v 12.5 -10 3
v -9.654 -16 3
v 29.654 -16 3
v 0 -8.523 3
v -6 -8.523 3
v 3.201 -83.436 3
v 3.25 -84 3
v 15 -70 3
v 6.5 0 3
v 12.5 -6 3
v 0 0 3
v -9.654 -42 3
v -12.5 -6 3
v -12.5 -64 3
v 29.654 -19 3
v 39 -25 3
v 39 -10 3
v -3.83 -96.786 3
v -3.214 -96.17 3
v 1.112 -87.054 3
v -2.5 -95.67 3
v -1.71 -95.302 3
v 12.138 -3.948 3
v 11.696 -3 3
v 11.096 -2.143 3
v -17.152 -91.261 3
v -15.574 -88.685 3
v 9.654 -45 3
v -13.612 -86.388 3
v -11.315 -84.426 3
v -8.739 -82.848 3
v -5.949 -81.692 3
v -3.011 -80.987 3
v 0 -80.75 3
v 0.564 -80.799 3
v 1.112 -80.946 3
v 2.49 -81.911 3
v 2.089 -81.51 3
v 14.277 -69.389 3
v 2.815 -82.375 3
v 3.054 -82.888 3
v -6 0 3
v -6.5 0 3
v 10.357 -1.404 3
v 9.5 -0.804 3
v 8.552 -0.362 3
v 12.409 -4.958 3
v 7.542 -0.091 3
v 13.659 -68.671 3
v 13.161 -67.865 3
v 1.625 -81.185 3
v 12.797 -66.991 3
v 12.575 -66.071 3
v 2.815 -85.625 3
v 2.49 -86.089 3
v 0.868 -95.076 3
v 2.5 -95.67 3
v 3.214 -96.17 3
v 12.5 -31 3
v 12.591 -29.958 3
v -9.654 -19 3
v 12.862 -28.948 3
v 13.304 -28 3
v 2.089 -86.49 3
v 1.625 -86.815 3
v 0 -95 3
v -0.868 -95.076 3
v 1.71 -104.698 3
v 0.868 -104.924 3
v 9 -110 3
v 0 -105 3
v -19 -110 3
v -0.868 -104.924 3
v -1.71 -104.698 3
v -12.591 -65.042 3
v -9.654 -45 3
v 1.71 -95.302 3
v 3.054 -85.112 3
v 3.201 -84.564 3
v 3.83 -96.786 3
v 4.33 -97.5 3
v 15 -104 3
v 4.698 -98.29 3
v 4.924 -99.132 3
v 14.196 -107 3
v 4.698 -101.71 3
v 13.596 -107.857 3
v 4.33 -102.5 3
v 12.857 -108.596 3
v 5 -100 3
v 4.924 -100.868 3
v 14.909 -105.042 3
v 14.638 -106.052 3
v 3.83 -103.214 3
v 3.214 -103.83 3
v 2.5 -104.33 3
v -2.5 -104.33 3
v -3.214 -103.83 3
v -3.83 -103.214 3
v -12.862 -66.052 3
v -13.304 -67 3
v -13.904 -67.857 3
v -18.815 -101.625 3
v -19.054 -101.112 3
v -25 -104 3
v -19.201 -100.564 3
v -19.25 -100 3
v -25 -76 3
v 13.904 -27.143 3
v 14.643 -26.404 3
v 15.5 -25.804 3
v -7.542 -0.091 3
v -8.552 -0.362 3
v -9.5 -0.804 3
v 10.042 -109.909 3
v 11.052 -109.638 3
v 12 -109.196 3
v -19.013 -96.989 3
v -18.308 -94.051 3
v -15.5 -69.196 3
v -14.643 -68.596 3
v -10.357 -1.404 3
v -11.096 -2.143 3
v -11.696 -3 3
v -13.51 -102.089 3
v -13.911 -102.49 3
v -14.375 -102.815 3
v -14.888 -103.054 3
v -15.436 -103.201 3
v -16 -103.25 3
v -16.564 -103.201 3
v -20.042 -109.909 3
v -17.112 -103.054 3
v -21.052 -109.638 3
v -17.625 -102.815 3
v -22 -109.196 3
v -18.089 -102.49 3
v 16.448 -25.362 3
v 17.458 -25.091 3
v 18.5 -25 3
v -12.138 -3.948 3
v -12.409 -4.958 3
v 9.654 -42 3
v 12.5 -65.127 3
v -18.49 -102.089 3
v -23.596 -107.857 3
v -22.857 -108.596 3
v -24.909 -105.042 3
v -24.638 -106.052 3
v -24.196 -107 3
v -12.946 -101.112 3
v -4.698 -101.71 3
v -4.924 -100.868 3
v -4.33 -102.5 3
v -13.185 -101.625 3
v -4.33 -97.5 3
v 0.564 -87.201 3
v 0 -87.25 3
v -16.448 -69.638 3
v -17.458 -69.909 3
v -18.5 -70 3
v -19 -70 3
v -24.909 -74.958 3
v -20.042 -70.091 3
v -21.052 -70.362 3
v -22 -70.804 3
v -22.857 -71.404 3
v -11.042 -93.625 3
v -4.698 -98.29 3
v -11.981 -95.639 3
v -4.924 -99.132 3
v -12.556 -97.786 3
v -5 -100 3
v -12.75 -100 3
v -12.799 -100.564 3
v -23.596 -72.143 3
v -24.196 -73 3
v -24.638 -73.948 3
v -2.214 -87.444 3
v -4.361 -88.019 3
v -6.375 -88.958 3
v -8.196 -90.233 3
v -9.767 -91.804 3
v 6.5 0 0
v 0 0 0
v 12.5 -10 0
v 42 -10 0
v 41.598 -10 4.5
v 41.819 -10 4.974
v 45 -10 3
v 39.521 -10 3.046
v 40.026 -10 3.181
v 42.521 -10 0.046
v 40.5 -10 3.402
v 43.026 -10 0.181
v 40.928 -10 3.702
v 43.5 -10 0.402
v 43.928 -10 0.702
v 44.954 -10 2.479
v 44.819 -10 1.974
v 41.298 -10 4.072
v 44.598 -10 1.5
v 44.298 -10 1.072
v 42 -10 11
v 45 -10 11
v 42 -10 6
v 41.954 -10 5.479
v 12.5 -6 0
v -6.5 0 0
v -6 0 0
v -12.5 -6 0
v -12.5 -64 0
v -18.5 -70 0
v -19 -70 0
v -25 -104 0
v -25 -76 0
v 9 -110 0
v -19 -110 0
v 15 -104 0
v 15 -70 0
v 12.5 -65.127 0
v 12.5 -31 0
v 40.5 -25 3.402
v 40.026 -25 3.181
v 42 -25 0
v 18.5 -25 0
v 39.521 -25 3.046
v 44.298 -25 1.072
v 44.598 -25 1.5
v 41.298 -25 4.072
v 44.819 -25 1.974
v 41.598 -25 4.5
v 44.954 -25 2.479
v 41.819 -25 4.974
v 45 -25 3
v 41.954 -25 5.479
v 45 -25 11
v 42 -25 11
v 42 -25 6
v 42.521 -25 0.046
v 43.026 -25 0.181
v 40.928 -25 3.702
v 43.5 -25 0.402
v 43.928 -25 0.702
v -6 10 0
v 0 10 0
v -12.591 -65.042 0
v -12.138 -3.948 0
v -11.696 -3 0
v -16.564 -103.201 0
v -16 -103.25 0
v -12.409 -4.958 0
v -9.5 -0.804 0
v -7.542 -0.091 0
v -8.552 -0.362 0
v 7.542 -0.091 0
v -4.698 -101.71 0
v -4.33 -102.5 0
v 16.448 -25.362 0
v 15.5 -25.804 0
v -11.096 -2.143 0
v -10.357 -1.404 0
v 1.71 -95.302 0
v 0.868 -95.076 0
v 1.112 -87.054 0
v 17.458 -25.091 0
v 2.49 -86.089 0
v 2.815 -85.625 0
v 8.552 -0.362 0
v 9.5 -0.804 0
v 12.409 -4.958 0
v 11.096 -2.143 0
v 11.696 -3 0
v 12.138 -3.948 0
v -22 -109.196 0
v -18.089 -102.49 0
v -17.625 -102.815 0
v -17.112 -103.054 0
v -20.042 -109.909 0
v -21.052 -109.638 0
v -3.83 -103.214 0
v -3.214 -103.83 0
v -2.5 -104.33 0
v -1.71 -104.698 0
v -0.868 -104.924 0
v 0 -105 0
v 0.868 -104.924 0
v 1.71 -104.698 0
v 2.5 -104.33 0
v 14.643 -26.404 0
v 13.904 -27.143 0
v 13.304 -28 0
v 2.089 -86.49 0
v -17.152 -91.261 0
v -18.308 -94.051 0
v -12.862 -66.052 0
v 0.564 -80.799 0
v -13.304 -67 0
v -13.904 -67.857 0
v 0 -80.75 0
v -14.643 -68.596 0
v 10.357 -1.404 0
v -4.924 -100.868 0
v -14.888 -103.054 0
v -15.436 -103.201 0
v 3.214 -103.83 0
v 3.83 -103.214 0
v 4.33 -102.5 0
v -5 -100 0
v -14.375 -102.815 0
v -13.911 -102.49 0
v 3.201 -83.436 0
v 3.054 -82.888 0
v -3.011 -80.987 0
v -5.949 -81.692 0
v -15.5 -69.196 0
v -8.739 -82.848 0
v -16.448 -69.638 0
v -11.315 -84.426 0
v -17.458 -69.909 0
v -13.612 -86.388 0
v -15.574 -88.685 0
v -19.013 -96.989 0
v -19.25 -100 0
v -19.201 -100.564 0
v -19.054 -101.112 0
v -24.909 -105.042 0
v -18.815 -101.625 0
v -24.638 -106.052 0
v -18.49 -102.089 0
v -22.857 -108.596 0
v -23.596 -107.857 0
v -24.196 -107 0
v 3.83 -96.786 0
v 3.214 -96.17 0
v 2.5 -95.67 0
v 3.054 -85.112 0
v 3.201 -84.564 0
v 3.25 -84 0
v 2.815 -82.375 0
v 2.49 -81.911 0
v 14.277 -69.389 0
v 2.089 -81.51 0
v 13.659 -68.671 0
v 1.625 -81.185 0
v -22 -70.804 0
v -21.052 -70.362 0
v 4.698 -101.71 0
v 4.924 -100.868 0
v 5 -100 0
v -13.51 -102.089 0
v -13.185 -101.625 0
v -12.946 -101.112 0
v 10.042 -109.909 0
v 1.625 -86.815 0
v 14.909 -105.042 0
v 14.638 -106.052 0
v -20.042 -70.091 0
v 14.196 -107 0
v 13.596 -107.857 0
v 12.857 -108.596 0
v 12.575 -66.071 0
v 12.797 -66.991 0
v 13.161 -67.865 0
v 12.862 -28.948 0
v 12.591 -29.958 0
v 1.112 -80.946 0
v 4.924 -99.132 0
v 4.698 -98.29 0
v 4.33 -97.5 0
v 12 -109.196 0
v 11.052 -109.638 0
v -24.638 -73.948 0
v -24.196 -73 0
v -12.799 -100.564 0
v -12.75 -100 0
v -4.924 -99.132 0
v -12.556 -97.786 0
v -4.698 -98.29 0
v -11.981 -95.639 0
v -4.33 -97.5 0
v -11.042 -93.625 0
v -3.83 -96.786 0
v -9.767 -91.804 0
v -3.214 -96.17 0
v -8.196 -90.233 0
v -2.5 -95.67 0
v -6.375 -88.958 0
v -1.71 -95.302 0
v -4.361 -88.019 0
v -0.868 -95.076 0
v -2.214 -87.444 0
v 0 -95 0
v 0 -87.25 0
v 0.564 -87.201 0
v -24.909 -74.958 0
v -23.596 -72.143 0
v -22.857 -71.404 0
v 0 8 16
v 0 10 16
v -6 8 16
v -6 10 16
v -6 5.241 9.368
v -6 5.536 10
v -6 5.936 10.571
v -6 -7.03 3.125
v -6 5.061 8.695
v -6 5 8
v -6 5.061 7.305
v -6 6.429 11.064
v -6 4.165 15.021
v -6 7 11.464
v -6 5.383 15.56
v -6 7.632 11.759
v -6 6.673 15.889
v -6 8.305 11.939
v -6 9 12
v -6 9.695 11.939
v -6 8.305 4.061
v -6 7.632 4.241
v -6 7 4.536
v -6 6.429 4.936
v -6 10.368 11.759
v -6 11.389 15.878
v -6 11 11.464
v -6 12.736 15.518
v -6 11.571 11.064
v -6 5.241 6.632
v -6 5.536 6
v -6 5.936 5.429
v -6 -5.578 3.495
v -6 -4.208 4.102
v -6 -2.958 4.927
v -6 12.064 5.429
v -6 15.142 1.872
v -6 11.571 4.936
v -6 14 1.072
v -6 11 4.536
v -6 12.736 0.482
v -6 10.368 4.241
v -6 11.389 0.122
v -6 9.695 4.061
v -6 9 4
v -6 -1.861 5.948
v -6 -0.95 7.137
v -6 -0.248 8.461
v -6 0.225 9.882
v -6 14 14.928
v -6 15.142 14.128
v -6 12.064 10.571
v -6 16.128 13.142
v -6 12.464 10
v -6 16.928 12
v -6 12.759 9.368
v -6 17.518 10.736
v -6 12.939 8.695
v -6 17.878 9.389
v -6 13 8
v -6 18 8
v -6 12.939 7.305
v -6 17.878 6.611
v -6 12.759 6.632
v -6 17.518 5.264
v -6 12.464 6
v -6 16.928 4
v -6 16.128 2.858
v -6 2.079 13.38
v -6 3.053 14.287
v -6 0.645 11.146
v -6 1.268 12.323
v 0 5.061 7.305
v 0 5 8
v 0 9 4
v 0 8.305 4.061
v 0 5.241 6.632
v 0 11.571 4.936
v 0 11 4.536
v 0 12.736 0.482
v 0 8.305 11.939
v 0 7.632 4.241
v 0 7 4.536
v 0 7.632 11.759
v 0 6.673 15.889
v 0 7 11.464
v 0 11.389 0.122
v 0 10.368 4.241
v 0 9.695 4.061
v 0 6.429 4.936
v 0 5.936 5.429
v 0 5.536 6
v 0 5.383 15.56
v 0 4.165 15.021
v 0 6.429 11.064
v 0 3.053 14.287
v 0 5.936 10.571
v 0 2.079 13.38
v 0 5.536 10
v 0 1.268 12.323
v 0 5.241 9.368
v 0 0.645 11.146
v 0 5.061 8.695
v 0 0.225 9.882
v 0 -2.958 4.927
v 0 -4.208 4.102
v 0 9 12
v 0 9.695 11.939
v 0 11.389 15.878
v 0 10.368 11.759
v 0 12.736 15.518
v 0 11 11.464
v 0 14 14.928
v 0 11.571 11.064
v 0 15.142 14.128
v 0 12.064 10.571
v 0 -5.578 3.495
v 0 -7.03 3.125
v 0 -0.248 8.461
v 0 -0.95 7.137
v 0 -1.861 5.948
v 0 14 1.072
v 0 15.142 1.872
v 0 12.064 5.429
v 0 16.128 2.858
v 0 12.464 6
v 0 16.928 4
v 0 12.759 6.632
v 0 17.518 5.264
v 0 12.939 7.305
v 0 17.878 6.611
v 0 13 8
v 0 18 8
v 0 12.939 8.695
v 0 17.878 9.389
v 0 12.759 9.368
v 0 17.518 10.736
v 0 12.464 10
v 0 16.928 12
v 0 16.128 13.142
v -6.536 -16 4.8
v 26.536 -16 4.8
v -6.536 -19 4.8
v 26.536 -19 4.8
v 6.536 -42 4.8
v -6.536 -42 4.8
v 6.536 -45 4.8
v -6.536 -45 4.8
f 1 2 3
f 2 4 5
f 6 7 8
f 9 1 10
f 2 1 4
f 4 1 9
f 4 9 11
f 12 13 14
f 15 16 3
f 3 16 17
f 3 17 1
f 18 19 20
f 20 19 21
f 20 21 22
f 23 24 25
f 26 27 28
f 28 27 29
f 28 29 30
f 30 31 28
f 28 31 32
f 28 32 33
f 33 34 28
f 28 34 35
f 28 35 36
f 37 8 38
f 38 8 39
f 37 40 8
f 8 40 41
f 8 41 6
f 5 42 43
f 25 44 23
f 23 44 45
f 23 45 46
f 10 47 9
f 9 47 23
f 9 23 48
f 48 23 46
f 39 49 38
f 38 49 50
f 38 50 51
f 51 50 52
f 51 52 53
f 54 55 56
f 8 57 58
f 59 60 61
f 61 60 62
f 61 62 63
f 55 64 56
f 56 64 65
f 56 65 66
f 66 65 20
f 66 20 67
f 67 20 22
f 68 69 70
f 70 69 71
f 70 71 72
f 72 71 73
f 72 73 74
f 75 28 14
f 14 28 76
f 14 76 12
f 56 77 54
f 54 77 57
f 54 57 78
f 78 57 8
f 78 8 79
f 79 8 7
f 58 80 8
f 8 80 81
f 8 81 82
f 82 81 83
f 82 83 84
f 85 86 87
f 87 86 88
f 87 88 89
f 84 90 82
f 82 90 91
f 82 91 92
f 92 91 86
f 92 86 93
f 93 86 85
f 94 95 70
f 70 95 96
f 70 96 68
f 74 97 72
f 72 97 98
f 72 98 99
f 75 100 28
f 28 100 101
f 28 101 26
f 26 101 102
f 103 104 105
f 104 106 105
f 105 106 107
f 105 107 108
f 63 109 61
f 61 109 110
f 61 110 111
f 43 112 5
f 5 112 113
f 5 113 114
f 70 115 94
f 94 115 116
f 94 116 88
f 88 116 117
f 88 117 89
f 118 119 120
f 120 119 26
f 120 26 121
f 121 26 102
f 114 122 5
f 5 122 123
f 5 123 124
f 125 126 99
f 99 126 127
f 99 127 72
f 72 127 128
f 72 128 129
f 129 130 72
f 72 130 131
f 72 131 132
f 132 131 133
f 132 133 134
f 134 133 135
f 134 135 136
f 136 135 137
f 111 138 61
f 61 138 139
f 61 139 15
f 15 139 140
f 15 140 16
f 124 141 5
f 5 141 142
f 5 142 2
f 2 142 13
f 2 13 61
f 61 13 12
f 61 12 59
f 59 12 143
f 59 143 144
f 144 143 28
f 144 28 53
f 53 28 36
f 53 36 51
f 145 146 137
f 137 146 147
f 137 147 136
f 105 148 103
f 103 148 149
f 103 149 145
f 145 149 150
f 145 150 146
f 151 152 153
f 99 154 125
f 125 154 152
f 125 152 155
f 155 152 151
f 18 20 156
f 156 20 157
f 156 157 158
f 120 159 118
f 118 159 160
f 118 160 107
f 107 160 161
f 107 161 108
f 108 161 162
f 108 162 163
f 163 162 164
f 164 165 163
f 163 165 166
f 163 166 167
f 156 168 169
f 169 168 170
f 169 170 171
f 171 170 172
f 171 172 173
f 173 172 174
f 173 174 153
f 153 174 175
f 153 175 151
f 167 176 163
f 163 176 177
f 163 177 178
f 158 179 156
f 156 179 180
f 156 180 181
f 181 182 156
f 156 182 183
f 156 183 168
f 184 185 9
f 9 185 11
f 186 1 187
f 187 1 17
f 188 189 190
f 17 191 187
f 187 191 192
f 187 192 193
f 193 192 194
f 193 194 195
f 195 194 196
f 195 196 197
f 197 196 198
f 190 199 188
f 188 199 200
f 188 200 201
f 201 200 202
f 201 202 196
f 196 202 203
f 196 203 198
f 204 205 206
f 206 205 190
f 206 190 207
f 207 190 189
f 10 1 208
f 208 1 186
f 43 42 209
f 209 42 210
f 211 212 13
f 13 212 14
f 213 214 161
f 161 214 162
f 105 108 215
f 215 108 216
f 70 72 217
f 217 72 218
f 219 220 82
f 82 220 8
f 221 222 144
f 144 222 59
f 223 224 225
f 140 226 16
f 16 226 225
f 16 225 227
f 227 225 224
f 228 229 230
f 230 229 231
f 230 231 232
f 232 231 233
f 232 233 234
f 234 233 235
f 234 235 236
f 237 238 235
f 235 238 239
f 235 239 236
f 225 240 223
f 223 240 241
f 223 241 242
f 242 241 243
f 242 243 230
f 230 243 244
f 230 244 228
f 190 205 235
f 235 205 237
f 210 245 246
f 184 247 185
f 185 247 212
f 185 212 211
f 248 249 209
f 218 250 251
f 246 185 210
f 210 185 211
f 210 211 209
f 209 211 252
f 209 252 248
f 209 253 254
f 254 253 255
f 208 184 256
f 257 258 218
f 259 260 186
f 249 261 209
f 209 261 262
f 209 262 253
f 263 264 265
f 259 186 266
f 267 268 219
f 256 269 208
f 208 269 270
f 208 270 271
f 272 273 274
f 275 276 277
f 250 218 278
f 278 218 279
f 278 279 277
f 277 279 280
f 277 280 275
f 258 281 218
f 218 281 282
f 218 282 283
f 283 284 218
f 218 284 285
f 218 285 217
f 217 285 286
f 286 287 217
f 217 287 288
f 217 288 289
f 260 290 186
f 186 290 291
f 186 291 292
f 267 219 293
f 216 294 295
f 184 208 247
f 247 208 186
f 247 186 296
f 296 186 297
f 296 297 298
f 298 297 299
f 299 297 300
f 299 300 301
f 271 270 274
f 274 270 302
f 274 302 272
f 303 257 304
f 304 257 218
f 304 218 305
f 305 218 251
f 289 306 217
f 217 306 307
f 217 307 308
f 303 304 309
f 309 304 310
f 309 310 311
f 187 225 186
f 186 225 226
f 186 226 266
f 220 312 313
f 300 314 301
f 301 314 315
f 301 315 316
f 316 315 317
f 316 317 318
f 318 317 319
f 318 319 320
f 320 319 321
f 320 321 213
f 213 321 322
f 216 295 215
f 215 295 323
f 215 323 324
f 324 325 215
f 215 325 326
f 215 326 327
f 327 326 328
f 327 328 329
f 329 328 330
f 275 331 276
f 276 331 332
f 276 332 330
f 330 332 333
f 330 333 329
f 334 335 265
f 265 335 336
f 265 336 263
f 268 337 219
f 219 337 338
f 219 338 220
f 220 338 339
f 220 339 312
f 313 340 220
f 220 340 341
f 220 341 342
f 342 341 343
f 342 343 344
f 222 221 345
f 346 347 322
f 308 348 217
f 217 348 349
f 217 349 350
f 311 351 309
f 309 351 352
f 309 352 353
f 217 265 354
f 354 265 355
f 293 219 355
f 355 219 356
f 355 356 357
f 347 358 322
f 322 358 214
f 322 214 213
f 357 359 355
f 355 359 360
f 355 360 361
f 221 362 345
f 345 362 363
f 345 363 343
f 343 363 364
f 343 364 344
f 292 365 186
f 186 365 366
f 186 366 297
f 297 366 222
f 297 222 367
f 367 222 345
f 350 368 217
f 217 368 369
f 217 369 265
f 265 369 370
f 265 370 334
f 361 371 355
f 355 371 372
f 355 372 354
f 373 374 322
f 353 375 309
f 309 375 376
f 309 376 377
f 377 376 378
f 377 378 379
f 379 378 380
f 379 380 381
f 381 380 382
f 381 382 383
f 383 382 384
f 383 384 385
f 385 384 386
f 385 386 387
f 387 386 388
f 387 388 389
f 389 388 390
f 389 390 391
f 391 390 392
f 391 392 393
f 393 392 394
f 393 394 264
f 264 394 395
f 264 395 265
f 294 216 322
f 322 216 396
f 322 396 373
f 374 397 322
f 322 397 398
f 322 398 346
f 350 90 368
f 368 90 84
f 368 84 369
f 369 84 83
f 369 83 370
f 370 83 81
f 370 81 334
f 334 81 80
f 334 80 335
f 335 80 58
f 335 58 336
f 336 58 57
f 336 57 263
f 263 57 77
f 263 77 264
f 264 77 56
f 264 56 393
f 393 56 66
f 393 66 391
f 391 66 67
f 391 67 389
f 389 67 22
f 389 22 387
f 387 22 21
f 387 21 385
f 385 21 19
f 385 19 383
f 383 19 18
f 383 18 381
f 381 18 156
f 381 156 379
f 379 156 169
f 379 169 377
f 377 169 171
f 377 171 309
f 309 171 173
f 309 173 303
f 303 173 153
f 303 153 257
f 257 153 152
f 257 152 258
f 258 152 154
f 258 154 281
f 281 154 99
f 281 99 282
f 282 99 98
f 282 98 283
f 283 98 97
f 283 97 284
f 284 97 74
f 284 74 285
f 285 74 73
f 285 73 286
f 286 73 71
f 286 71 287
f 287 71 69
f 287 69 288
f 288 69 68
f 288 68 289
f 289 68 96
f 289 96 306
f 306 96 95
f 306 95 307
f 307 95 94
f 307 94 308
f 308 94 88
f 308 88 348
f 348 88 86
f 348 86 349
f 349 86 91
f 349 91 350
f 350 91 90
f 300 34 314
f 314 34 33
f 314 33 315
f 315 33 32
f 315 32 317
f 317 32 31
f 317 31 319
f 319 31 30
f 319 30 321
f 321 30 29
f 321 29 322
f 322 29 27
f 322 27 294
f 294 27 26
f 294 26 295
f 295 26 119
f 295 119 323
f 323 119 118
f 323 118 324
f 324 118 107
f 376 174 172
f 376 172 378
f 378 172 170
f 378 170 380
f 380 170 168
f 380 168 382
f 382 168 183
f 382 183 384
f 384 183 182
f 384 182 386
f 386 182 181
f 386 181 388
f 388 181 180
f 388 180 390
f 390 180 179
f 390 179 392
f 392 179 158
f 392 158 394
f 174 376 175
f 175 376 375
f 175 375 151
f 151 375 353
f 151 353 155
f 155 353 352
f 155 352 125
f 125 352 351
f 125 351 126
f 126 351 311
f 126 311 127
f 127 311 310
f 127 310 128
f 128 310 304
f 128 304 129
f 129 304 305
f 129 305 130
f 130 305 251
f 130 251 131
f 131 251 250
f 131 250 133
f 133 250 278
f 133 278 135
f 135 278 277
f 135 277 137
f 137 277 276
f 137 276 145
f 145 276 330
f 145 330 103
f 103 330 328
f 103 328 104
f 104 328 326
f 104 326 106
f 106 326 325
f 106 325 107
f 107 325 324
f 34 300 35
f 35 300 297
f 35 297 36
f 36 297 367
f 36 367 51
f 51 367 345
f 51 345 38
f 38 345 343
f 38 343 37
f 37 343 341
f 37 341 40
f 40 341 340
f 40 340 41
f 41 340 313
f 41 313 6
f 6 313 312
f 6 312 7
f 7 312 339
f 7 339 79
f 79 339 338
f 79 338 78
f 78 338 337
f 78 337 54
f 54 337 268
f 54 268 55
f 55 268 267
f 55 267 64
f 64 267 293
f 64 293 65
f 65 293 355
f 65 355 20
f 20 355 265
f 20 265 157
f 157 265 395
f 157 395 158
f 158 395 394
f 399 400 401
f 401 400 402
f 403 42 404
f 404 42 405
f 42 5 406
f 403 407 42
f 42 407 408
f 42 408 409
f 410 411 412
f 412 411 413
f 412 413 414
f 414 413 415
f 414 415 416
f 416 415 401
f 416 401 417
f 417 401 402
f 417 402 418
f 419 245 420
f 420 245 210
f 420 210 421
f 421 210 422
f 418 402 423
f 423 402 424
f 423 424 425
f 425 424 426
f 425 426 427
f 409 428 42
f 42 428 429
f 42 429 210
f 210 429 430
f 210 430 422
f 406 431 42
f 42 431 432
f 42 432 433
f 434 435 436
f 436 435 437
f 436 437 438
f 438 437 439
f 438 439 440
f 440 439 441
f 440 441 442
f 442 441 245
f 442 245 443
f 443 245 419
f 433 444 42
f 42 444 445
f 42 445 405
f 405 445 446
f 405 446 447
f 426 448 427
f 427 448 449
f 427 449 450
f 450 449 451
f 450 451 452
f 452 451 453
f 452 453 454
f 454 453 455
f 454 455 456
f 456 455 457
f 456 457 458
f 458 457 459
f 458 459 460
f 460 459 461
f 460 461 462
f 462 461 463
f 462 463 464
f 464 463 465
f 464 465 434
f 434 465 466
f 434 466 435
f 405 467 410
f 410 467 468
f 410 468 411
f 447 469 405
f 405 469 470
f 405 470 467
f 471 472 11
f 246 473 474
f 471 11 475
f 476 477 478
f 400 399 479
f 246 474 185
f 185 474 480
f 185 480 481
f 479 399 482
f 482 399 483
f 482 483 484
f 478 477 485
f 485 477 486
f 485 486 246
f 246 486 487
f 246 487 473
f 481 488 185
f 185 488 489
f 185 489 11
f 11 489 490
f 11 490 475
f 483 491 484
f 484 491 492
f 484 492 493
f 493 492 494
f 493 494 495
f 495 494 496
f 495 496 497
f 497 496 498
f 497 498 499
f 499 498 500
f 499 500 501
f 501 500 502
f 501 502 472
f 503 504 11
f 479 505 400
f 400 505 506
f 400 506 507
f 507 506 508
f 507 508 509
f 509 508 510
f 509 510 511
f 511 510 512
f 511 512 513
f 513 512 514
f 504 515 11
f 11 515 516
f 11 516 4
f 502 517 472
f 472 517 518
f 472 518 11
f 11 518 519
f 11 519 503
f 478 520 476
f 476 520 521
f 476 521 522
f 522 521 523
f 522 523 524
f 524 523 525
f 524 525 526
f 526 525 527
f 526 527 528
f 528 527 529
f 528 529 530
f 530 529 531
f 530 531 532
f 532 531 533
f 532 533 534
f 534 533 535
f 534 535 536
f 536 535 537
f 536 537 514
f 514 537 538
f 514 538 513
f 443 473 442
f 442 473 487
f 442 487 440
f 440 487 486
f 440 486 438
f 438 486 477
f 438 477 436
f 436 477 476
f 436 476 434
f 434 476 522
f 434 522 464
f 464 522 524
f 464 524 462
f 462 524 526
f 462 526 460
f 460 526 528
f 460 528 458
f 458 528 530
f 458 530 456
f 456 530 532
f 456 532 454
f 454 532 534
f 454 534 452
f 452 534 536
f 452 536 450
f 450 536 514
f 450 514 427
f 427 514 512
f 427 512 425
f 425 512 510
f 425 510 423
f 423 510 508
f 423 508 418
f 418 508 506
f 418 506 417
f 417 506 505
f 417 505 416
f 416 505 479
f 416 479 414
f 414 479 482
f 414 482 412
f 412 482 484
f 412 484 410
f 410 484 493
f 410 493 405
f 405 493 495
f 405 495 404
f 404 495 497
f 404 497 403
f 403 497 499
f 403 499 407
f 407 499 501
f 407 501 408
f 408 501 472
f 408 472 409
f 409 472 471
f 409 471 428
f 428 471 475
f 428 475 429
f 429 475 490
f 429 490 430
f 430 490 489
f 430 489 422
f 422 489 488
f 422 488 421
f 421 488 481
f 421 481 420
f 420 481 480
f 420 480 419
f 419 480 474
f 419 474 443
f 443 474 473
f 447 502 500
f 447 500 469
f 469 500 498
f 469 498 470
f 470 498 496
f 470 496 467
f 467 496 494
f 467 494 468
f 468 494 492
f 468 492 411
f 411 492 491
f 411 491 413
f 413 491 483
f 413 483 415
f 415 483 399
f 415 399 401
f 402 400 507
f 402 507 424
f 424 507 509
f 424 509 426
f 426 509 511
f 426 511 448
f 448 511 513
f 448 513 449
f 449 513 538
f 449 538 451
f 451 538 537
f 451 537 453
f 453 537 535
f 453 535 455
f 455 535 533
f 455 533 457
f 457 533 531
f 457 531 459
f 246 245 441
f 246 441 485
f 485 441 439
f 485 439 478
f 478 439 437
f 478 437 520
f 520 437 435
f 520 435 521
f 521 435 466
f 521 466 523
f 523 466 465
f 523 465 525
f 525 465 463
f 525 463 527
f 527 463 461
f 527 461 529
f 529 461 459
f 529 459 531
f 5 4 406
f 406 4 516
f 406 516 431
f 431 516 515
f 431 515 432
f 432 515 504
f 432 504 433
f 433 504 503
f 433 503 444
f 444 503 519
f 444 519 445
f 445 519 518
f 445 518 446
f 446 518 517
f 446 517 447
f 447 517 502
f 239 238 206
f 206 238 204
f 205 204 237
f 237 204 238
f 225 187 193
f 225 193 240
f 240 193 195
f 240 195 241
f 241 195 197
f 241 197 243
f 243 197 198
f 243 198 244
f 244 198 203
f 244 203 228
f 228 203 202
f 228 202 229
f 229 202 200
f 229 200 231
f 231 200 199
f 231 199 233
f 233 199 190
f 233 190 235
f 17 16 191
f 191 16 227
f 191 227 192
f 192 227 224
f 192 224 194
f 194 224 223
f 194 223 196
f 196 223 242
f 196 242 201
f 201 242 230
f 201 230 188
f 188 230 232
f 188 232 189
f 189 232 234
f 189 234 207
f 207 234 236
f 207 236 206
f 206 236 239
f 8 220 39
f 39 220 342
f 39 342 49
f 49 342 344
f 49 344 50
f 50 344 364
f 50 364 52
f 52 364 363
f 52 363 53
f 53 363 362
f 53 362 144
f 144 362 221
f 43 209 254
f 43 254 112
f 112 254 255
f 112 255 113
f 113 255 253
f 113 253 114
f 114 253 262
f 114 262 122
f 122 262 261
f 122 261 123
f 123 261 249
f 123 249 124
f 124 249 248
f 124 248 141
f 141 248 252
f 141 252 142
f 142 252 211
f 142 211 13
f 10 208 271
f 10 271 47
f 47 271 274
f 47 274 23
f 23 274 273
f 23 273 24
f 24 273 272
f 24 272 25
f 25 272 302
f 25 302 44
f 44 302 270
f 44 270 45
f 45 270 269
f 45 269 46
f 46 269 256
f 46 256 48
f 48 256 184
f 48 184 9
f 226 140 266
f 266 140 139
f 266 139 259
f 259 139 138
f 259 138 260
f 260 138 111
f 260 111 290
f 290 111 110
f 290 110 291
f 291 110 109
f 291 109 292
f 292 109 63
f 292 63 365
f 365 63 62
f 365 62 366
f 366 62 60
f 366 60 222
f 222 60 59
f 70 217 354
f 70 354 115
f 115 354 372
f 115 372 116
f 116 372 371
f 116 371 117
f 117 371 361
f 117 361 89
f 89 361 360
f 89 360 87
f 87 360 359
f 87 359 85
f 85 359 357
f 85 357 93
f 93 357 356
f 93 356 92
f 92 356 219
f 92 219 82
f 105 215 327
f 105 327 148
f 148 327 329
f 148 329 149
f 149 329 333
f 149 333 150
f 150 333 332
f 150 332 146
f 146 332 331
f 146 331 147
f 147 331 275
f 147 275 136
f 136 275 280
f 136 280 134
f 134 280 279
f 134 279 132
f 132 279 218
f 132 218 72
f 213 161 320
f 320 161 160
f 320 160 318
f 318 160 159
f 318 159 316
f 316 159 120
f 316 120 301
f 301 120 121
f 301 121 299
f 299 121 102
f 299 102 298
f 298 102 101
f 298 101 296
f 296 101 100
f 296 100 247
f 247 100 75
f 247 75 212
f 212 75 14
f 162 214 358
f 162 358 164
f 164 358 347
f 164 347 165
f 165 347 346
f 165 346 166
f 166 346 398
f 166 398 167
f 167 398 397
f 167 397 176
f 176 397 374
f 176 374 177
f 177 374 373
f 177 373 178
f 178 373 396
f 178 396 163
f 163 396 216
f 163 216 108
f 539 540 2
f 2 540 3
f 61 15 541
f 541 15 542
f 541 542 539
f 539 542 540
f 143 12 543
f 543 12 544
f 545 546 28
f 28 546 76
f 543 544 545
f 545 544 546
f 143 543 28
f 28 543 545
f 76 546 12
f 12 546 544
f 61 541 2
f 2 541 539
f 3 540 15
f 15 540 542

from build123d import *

# Parameters (mm, degrees)
BOSS_EXTRUDE1_DEPTH = 3
SKETCH4_R           = 5
CUT_EXTRUDE1_DEPTH  = 10.4
SKETCH7_W           = 6.5
SKETCH7_H           = 3
CUT_REVOLVE1_ANGLE  = 90
SKETCH8_R           = 3.25
CUT_EXTRUDE2_DEPTH  = 119.886500495
SKETCH9_W           = 16
SKETCH9_H           = 18
BOSS_EXTRUDE2_DEPTH = 6
SKETCH10_R          = 4
CUT_EXTRUDE3_DEPTH  = 8
FILLET1_R           = 8
FILLET2_R           = 9
SKETCH11_W          = 3
SKETCH11_H          = 15
BOSS_EXTRUDE3_DEPTH = 8
FILLET3_R           = 3
FILLET4_R           = 6
SKETCH12_W          = 40
SKETCH12_H          = 3
SKETCH12_W_2        = 20
BOSS_EXTRUDE4_DEPTH = 1.8
CHAMFER1_SIZE       = 2
CHAMFER1_SIZE_2     = 3.464101615


# Some blends are built 0.0001 mm under size
with BuildPart() as part:
    # Sketch1 → Boss-Extrude1 (new body)
    with BuildSketch(Plane.XY):
        Polygon((-12.5, 0), (-12.5, -70), (-25, -70), (-25, -110), (15, -110), (15, -70), (12.5, -70), (12.5, -25), (45, -25), (45, -10), (12.5, -10), (12.5, 0), (0, 0), align=None)
    extrude(amount=BOSS_EXTRUDE1_DEPTH)

    # Sketch4 → Cut-Extrude1 (cut)
    with BuildSketch(Plane.XY.offset(3)):
        with Locations((0, -100)):
            Circle(SKETCH4_R)
    extrude(amount=-CUT_EXTRUDE1_DEPTH, mode=Mode.SUBTRACT)

    # Sketch7 → Cut-Revolve1 (revolve, cut)
    with BuildSketch(Plane(origin=(0, -100, 0), x_dir=(1, 0, 0), z_dir=(0, 1, 0))):
        with Locations((-16, -1.5)):
            Rectangle(SKETCH7_W, SKETCH7_H)
    revolve(axis=Axis((0, -100, -80.99), (0, 0, -1)), revolution_arc=CUT_REVOLVE1_ANGLE, mode=Mode.SUBTRACT)

    # Sketch8 → Cut-Extrude2 (cut, through all)
    with BuildSketch(Plane.XY):
        with Locations((0, -84)):
            Circle(SKETCH8_R)
        with Locations((-16, -100)):
            Circle(SKETCH8_R)
    extrude(amount=CUT_EXTRUDE2_DEPTH, mode=Mode.SUBTRACT)

    # Sketch9 → Boss-Extrude2 (add)
    with BuildSketch(Plane(origin=(0, 0, 0), x_dir=(0, 0, -1), z_dir=(1, 0, 0))):
        with Locations((-8, 9)):
            Rectangle(SKETCH9_W, SKETCH9_H)
    extrude(amount=-BOSS_EXTRUDE2_DEPTH)

    # Sketch10 → Cut-Extrude3 (cut)
    with BuildSketch(Plane(origin=(0, 0, 0), x_dir=(0, 0, -1), z_dir=(1, 0, 0))):
        with Locations((-8, 9)):
            Circle(SKETCH10_R)
    extrude(amount=-CUT_EXTRUDE3_DEPTH, mode=Mode.SUBTRACT)

    # Fillet1
    fillet1_edges = [part.edges().sort_by_distance(p)[0] for p in [
        (-3, 0, 16),
        (-3, 18, 0),
        (-3, 18, 16),
    ]]
    fillet(fillet1_edges, radius=FILLET1_R - 0.0001)  # a hair under: the kernel refuses the full size

    # Fillet2
    # the kernel refuses this fillet: 9 mm, written as the material it adds along each edge
    with BuildSketch(Plane(origin=(-6, 0, 3), x_dir=(0, 0.032615873538584784, 0.9994679608638364), z_dir=(1, 0, 0))) as fillet2_piece_1:
        with BuildLine():
            CenterArc((8.717235267, 8.811741396), FILLET2_R, 181.869083386, 76.391304548)
            Line((-0.27797638, 8.518198535), (-1.177497545, 8.488844248))
            Line((-1.177497545, 8.488844248), (-0.899521165, -0.029354286))
            Line((-0.899521165, -0.029354286), (0.029354286, -0.899521165))
            ThreePointArc((0.029354286, -0.899521165), (5.026794037, -0.736438535), (6.702939259, -0.88117414))
            Line((6.702939259, -0.88117414), (6.886057078, 0))
        make_face()
    extrude(amount=6)

    # Sketch11 → Boss-Extrude3 (add)
    with BuildSketch(Plane.XY.offset(3)):
        with Locations((43.5, -17.5)):
            Rectangle(SKETCH11_W, SKETCH11_H)
    extrude(amount=BOSS_EXTRUDE3_DEPTH)

    # Fillet3
    fillet3_edges = [part.edges().sort_by_distance(p)[0] for p in [
        (42, -17.5, 3),
        (45, -17.5, 0),
    ]]
    fillet(fillet3_edges, radius=FILLET3_R)

    # Fillet4
    # the kernel refuses this fillet: 6 mm, written as the material it adds along each edge
    with BuildSketch(Plane(origin=(12.5, -25, 0), x_dir=(1, 0, 0), z_dir=(0, 0, 1))) as fillet4_piece_1:
        with BuildLine():
            CenterArc((FILLET4_R, -FILLET4_R), FILLET4_R, 90, 90)
            Line((0, -FILLET4_R), (0, 0))
            Line((0, 0), (FILLET4_R, 0))
        make_face()
    extrude(amount=3)
    with BuildSketch(Plane(origin=(12.5, -70, 0), x_dir=(0, 1, 0), z_dir=(0, 0, 1))) as fillet4_piece_2:
        with BuildLine():
            CenterArc((4.873397172, -6), FILLET4_R, 90, 54.314665287)
            Line((0, -2.5), (0, 0))
            Line((0, 0), (4.873397172, 0))
        make_face()
    extrude(amount=3)
    with BuildSketch(Plane(origin=(-12.5, -70, 0), x_dir=(0, 1, 0), z_dir=(0, 0, 1))) as fillet4_piece_3:
        with BuildLine():
            CenterArc((FILLET4_R, FILLET4_R), FILLET4_R, 180, 90)
            Line((0, FILLET4_R), (0, 0))
            Line((0, 0), (FILLET4_R, 0))
        make_face()
    extrude(amount=3)
    # the kernel refuses this fillet: 6 mm, written as the material it takes off along each edge
    with BuildSketch(Plane(origin=(15, -110, -15), x_dir=(0, 1, 0), z_dir=(0, 0, 1)), Plane(origin=(-25, -110, -15), x_dir=(1, 0, 0), z_dir=(0, 0, 1)), Plane(origin=(-25, -70, -15), x_dir=(0, -1, 0), z_dir=(0, 0, 1))) as fillet4_2_piece_1:
        with BuildLine():
            CenterArc((FILLET4_R, FILLET4_R), FILLET4_R, 180, 90)
            Line((0, FILLET4_R), (0, 0))
            Line((0, 0), (FILLET4_R, 0))
        make_face()
    extrude(amount=33, mode=Mode.SUBTRACT)
    with BuildSketch(Plane(origin=(-12.5, 0, -15), x_dir=(1, 0, 0), z_dir=(0, 0, 1)), Plane(origin=(12.5, 0, -15), x_dir=(0, -1, 0), z_dir=(0, 0, 1))) as fillet4_2_piece_2:
        with BuildLine():
            CenterArc((FILLET4_R, -FILLET4_R), FILLET4_R, 90, 90)
            Line((0, -FILLET4_R), (0, 0))
            Line((0, 0), (FILLET4_R, 0))
        make_face()
    extrude(amount=33, mode=Mode.SUBTRACT)

    # Sketch12 → Boss-Extrude4 (add)
    with BuildSketch(Plane.XY.offset(3)):
        with Locations((10, -17.5)):
            Rectangle(SKETCH12_W, SKETCH12_H)
        with Locations((0, -43.5)):
            Rectangle(SKETCH12_W_2, SKETCH12_H)
    extrude(amount=BOSS_EXTRUDE4_DEPTH)

    # Chamfer1
    # the kernel refuses this chamfer: 3.464101615, 2 mm, written as the material it takes off along each edge
    with BuildSketch(Plane(origin=(10, -53.961927941, 4.8), x_dir=(0, 0, -1), z_dir=(0, 1, 0))) as chamfer1_piece_1_section:
        Polygon((CHAMFER1_SIZE, 0), (0, CHAMFER1_SIZE_2), (0, 0), align=None)
    chamfer1_piece_1 = extrude(amount=20.923855882, mode=Mode.PRIVATE)
    chamfer1_piece_1 = split(chamfer1_piece_1, bisect_by=Plane(origin=(10, -53.961927941, 3), z_dir=(0, 0, 1)), keep=Keep.TOP, mode=Mode.PRIVATE)
    add(chamfer1_piece_1, mode=Mode.SUBTRACT)
    with BuildSketch(Plane(origin=(-10, -33.038072059, 4.8), x_dir=(0, 0, -1), z_dir=(0, -1, 0))) as chamfer1_piece_2_section:
        Polygon((CHAMFER1_SIZE, 0), (0, CHAMFER1_SIZE_2), (0, 0), align=None)
    chamfer1_piece_2 = extrude(amount=20.923855882, mode=Mode.PRIVATE)
    chamfer1_piece_2 = split(chamfer1_piece_2, bisect_by=Plane(origin=(-10, -33.038072059, 3), z_dir=(0, 0, 1)), keep=Keep.TOP, mode=Mode.PRIVATE)
    add(chamfer1_piece_2, mode=Mode.SUBTRACT)
    with BuildSketch(Plane(origin=(-10, -7.038072059, 4.8), x_dir=(0, 0, -1), z_dir=(0, -1, 0))) as chamfer1_piece_3_section:
        Polygon((CHAMFER1_SIZE, 0), (0, CHAMFER1_SIZE_2), (0, 0), align=None)
    chamfer1_piece_3 = extrude(amount=20.923855882, mode=Mode.PRIVATE)
    chamfer1_piece_3 = split(chamfer1_piece_3, bisect_by=Plane(origin=(-10, -7.038072059, 3), z_dir=(0, 0, 1)), keep=Keep.TOP, mode=Mode.PRIVATE)
    add(chamfer1_piece_3, mode=Mode.SUBTRACT)
    with BuildSketch(Plane(origin=(30, -27.961927941, 4.8), x_dir=(0, 0, -1), z_dir=(0, 1, 0))) as chamfer1_piece_4_section:
        Polygon((CHAMFER1_SIZE, 0), (0, CHAMFER1_SIZE_2), (0, 0), align=None)
    chamfer1_piece_4 = extrude(amount=20.923855882, mode=Mode.PRIVATE)
    chamfer1_piece_4 = split(chamfer1_piece_4, bisect_by=Plane(origin=(30, -27.961927941, 3), z_dir=(0, 0, 1)), keep=Keep.TOP, mode=Mode.PRIVATE)
    add(chamfer1_piece_4, mode=Mode.SUBTRACT)


solid = part.part
